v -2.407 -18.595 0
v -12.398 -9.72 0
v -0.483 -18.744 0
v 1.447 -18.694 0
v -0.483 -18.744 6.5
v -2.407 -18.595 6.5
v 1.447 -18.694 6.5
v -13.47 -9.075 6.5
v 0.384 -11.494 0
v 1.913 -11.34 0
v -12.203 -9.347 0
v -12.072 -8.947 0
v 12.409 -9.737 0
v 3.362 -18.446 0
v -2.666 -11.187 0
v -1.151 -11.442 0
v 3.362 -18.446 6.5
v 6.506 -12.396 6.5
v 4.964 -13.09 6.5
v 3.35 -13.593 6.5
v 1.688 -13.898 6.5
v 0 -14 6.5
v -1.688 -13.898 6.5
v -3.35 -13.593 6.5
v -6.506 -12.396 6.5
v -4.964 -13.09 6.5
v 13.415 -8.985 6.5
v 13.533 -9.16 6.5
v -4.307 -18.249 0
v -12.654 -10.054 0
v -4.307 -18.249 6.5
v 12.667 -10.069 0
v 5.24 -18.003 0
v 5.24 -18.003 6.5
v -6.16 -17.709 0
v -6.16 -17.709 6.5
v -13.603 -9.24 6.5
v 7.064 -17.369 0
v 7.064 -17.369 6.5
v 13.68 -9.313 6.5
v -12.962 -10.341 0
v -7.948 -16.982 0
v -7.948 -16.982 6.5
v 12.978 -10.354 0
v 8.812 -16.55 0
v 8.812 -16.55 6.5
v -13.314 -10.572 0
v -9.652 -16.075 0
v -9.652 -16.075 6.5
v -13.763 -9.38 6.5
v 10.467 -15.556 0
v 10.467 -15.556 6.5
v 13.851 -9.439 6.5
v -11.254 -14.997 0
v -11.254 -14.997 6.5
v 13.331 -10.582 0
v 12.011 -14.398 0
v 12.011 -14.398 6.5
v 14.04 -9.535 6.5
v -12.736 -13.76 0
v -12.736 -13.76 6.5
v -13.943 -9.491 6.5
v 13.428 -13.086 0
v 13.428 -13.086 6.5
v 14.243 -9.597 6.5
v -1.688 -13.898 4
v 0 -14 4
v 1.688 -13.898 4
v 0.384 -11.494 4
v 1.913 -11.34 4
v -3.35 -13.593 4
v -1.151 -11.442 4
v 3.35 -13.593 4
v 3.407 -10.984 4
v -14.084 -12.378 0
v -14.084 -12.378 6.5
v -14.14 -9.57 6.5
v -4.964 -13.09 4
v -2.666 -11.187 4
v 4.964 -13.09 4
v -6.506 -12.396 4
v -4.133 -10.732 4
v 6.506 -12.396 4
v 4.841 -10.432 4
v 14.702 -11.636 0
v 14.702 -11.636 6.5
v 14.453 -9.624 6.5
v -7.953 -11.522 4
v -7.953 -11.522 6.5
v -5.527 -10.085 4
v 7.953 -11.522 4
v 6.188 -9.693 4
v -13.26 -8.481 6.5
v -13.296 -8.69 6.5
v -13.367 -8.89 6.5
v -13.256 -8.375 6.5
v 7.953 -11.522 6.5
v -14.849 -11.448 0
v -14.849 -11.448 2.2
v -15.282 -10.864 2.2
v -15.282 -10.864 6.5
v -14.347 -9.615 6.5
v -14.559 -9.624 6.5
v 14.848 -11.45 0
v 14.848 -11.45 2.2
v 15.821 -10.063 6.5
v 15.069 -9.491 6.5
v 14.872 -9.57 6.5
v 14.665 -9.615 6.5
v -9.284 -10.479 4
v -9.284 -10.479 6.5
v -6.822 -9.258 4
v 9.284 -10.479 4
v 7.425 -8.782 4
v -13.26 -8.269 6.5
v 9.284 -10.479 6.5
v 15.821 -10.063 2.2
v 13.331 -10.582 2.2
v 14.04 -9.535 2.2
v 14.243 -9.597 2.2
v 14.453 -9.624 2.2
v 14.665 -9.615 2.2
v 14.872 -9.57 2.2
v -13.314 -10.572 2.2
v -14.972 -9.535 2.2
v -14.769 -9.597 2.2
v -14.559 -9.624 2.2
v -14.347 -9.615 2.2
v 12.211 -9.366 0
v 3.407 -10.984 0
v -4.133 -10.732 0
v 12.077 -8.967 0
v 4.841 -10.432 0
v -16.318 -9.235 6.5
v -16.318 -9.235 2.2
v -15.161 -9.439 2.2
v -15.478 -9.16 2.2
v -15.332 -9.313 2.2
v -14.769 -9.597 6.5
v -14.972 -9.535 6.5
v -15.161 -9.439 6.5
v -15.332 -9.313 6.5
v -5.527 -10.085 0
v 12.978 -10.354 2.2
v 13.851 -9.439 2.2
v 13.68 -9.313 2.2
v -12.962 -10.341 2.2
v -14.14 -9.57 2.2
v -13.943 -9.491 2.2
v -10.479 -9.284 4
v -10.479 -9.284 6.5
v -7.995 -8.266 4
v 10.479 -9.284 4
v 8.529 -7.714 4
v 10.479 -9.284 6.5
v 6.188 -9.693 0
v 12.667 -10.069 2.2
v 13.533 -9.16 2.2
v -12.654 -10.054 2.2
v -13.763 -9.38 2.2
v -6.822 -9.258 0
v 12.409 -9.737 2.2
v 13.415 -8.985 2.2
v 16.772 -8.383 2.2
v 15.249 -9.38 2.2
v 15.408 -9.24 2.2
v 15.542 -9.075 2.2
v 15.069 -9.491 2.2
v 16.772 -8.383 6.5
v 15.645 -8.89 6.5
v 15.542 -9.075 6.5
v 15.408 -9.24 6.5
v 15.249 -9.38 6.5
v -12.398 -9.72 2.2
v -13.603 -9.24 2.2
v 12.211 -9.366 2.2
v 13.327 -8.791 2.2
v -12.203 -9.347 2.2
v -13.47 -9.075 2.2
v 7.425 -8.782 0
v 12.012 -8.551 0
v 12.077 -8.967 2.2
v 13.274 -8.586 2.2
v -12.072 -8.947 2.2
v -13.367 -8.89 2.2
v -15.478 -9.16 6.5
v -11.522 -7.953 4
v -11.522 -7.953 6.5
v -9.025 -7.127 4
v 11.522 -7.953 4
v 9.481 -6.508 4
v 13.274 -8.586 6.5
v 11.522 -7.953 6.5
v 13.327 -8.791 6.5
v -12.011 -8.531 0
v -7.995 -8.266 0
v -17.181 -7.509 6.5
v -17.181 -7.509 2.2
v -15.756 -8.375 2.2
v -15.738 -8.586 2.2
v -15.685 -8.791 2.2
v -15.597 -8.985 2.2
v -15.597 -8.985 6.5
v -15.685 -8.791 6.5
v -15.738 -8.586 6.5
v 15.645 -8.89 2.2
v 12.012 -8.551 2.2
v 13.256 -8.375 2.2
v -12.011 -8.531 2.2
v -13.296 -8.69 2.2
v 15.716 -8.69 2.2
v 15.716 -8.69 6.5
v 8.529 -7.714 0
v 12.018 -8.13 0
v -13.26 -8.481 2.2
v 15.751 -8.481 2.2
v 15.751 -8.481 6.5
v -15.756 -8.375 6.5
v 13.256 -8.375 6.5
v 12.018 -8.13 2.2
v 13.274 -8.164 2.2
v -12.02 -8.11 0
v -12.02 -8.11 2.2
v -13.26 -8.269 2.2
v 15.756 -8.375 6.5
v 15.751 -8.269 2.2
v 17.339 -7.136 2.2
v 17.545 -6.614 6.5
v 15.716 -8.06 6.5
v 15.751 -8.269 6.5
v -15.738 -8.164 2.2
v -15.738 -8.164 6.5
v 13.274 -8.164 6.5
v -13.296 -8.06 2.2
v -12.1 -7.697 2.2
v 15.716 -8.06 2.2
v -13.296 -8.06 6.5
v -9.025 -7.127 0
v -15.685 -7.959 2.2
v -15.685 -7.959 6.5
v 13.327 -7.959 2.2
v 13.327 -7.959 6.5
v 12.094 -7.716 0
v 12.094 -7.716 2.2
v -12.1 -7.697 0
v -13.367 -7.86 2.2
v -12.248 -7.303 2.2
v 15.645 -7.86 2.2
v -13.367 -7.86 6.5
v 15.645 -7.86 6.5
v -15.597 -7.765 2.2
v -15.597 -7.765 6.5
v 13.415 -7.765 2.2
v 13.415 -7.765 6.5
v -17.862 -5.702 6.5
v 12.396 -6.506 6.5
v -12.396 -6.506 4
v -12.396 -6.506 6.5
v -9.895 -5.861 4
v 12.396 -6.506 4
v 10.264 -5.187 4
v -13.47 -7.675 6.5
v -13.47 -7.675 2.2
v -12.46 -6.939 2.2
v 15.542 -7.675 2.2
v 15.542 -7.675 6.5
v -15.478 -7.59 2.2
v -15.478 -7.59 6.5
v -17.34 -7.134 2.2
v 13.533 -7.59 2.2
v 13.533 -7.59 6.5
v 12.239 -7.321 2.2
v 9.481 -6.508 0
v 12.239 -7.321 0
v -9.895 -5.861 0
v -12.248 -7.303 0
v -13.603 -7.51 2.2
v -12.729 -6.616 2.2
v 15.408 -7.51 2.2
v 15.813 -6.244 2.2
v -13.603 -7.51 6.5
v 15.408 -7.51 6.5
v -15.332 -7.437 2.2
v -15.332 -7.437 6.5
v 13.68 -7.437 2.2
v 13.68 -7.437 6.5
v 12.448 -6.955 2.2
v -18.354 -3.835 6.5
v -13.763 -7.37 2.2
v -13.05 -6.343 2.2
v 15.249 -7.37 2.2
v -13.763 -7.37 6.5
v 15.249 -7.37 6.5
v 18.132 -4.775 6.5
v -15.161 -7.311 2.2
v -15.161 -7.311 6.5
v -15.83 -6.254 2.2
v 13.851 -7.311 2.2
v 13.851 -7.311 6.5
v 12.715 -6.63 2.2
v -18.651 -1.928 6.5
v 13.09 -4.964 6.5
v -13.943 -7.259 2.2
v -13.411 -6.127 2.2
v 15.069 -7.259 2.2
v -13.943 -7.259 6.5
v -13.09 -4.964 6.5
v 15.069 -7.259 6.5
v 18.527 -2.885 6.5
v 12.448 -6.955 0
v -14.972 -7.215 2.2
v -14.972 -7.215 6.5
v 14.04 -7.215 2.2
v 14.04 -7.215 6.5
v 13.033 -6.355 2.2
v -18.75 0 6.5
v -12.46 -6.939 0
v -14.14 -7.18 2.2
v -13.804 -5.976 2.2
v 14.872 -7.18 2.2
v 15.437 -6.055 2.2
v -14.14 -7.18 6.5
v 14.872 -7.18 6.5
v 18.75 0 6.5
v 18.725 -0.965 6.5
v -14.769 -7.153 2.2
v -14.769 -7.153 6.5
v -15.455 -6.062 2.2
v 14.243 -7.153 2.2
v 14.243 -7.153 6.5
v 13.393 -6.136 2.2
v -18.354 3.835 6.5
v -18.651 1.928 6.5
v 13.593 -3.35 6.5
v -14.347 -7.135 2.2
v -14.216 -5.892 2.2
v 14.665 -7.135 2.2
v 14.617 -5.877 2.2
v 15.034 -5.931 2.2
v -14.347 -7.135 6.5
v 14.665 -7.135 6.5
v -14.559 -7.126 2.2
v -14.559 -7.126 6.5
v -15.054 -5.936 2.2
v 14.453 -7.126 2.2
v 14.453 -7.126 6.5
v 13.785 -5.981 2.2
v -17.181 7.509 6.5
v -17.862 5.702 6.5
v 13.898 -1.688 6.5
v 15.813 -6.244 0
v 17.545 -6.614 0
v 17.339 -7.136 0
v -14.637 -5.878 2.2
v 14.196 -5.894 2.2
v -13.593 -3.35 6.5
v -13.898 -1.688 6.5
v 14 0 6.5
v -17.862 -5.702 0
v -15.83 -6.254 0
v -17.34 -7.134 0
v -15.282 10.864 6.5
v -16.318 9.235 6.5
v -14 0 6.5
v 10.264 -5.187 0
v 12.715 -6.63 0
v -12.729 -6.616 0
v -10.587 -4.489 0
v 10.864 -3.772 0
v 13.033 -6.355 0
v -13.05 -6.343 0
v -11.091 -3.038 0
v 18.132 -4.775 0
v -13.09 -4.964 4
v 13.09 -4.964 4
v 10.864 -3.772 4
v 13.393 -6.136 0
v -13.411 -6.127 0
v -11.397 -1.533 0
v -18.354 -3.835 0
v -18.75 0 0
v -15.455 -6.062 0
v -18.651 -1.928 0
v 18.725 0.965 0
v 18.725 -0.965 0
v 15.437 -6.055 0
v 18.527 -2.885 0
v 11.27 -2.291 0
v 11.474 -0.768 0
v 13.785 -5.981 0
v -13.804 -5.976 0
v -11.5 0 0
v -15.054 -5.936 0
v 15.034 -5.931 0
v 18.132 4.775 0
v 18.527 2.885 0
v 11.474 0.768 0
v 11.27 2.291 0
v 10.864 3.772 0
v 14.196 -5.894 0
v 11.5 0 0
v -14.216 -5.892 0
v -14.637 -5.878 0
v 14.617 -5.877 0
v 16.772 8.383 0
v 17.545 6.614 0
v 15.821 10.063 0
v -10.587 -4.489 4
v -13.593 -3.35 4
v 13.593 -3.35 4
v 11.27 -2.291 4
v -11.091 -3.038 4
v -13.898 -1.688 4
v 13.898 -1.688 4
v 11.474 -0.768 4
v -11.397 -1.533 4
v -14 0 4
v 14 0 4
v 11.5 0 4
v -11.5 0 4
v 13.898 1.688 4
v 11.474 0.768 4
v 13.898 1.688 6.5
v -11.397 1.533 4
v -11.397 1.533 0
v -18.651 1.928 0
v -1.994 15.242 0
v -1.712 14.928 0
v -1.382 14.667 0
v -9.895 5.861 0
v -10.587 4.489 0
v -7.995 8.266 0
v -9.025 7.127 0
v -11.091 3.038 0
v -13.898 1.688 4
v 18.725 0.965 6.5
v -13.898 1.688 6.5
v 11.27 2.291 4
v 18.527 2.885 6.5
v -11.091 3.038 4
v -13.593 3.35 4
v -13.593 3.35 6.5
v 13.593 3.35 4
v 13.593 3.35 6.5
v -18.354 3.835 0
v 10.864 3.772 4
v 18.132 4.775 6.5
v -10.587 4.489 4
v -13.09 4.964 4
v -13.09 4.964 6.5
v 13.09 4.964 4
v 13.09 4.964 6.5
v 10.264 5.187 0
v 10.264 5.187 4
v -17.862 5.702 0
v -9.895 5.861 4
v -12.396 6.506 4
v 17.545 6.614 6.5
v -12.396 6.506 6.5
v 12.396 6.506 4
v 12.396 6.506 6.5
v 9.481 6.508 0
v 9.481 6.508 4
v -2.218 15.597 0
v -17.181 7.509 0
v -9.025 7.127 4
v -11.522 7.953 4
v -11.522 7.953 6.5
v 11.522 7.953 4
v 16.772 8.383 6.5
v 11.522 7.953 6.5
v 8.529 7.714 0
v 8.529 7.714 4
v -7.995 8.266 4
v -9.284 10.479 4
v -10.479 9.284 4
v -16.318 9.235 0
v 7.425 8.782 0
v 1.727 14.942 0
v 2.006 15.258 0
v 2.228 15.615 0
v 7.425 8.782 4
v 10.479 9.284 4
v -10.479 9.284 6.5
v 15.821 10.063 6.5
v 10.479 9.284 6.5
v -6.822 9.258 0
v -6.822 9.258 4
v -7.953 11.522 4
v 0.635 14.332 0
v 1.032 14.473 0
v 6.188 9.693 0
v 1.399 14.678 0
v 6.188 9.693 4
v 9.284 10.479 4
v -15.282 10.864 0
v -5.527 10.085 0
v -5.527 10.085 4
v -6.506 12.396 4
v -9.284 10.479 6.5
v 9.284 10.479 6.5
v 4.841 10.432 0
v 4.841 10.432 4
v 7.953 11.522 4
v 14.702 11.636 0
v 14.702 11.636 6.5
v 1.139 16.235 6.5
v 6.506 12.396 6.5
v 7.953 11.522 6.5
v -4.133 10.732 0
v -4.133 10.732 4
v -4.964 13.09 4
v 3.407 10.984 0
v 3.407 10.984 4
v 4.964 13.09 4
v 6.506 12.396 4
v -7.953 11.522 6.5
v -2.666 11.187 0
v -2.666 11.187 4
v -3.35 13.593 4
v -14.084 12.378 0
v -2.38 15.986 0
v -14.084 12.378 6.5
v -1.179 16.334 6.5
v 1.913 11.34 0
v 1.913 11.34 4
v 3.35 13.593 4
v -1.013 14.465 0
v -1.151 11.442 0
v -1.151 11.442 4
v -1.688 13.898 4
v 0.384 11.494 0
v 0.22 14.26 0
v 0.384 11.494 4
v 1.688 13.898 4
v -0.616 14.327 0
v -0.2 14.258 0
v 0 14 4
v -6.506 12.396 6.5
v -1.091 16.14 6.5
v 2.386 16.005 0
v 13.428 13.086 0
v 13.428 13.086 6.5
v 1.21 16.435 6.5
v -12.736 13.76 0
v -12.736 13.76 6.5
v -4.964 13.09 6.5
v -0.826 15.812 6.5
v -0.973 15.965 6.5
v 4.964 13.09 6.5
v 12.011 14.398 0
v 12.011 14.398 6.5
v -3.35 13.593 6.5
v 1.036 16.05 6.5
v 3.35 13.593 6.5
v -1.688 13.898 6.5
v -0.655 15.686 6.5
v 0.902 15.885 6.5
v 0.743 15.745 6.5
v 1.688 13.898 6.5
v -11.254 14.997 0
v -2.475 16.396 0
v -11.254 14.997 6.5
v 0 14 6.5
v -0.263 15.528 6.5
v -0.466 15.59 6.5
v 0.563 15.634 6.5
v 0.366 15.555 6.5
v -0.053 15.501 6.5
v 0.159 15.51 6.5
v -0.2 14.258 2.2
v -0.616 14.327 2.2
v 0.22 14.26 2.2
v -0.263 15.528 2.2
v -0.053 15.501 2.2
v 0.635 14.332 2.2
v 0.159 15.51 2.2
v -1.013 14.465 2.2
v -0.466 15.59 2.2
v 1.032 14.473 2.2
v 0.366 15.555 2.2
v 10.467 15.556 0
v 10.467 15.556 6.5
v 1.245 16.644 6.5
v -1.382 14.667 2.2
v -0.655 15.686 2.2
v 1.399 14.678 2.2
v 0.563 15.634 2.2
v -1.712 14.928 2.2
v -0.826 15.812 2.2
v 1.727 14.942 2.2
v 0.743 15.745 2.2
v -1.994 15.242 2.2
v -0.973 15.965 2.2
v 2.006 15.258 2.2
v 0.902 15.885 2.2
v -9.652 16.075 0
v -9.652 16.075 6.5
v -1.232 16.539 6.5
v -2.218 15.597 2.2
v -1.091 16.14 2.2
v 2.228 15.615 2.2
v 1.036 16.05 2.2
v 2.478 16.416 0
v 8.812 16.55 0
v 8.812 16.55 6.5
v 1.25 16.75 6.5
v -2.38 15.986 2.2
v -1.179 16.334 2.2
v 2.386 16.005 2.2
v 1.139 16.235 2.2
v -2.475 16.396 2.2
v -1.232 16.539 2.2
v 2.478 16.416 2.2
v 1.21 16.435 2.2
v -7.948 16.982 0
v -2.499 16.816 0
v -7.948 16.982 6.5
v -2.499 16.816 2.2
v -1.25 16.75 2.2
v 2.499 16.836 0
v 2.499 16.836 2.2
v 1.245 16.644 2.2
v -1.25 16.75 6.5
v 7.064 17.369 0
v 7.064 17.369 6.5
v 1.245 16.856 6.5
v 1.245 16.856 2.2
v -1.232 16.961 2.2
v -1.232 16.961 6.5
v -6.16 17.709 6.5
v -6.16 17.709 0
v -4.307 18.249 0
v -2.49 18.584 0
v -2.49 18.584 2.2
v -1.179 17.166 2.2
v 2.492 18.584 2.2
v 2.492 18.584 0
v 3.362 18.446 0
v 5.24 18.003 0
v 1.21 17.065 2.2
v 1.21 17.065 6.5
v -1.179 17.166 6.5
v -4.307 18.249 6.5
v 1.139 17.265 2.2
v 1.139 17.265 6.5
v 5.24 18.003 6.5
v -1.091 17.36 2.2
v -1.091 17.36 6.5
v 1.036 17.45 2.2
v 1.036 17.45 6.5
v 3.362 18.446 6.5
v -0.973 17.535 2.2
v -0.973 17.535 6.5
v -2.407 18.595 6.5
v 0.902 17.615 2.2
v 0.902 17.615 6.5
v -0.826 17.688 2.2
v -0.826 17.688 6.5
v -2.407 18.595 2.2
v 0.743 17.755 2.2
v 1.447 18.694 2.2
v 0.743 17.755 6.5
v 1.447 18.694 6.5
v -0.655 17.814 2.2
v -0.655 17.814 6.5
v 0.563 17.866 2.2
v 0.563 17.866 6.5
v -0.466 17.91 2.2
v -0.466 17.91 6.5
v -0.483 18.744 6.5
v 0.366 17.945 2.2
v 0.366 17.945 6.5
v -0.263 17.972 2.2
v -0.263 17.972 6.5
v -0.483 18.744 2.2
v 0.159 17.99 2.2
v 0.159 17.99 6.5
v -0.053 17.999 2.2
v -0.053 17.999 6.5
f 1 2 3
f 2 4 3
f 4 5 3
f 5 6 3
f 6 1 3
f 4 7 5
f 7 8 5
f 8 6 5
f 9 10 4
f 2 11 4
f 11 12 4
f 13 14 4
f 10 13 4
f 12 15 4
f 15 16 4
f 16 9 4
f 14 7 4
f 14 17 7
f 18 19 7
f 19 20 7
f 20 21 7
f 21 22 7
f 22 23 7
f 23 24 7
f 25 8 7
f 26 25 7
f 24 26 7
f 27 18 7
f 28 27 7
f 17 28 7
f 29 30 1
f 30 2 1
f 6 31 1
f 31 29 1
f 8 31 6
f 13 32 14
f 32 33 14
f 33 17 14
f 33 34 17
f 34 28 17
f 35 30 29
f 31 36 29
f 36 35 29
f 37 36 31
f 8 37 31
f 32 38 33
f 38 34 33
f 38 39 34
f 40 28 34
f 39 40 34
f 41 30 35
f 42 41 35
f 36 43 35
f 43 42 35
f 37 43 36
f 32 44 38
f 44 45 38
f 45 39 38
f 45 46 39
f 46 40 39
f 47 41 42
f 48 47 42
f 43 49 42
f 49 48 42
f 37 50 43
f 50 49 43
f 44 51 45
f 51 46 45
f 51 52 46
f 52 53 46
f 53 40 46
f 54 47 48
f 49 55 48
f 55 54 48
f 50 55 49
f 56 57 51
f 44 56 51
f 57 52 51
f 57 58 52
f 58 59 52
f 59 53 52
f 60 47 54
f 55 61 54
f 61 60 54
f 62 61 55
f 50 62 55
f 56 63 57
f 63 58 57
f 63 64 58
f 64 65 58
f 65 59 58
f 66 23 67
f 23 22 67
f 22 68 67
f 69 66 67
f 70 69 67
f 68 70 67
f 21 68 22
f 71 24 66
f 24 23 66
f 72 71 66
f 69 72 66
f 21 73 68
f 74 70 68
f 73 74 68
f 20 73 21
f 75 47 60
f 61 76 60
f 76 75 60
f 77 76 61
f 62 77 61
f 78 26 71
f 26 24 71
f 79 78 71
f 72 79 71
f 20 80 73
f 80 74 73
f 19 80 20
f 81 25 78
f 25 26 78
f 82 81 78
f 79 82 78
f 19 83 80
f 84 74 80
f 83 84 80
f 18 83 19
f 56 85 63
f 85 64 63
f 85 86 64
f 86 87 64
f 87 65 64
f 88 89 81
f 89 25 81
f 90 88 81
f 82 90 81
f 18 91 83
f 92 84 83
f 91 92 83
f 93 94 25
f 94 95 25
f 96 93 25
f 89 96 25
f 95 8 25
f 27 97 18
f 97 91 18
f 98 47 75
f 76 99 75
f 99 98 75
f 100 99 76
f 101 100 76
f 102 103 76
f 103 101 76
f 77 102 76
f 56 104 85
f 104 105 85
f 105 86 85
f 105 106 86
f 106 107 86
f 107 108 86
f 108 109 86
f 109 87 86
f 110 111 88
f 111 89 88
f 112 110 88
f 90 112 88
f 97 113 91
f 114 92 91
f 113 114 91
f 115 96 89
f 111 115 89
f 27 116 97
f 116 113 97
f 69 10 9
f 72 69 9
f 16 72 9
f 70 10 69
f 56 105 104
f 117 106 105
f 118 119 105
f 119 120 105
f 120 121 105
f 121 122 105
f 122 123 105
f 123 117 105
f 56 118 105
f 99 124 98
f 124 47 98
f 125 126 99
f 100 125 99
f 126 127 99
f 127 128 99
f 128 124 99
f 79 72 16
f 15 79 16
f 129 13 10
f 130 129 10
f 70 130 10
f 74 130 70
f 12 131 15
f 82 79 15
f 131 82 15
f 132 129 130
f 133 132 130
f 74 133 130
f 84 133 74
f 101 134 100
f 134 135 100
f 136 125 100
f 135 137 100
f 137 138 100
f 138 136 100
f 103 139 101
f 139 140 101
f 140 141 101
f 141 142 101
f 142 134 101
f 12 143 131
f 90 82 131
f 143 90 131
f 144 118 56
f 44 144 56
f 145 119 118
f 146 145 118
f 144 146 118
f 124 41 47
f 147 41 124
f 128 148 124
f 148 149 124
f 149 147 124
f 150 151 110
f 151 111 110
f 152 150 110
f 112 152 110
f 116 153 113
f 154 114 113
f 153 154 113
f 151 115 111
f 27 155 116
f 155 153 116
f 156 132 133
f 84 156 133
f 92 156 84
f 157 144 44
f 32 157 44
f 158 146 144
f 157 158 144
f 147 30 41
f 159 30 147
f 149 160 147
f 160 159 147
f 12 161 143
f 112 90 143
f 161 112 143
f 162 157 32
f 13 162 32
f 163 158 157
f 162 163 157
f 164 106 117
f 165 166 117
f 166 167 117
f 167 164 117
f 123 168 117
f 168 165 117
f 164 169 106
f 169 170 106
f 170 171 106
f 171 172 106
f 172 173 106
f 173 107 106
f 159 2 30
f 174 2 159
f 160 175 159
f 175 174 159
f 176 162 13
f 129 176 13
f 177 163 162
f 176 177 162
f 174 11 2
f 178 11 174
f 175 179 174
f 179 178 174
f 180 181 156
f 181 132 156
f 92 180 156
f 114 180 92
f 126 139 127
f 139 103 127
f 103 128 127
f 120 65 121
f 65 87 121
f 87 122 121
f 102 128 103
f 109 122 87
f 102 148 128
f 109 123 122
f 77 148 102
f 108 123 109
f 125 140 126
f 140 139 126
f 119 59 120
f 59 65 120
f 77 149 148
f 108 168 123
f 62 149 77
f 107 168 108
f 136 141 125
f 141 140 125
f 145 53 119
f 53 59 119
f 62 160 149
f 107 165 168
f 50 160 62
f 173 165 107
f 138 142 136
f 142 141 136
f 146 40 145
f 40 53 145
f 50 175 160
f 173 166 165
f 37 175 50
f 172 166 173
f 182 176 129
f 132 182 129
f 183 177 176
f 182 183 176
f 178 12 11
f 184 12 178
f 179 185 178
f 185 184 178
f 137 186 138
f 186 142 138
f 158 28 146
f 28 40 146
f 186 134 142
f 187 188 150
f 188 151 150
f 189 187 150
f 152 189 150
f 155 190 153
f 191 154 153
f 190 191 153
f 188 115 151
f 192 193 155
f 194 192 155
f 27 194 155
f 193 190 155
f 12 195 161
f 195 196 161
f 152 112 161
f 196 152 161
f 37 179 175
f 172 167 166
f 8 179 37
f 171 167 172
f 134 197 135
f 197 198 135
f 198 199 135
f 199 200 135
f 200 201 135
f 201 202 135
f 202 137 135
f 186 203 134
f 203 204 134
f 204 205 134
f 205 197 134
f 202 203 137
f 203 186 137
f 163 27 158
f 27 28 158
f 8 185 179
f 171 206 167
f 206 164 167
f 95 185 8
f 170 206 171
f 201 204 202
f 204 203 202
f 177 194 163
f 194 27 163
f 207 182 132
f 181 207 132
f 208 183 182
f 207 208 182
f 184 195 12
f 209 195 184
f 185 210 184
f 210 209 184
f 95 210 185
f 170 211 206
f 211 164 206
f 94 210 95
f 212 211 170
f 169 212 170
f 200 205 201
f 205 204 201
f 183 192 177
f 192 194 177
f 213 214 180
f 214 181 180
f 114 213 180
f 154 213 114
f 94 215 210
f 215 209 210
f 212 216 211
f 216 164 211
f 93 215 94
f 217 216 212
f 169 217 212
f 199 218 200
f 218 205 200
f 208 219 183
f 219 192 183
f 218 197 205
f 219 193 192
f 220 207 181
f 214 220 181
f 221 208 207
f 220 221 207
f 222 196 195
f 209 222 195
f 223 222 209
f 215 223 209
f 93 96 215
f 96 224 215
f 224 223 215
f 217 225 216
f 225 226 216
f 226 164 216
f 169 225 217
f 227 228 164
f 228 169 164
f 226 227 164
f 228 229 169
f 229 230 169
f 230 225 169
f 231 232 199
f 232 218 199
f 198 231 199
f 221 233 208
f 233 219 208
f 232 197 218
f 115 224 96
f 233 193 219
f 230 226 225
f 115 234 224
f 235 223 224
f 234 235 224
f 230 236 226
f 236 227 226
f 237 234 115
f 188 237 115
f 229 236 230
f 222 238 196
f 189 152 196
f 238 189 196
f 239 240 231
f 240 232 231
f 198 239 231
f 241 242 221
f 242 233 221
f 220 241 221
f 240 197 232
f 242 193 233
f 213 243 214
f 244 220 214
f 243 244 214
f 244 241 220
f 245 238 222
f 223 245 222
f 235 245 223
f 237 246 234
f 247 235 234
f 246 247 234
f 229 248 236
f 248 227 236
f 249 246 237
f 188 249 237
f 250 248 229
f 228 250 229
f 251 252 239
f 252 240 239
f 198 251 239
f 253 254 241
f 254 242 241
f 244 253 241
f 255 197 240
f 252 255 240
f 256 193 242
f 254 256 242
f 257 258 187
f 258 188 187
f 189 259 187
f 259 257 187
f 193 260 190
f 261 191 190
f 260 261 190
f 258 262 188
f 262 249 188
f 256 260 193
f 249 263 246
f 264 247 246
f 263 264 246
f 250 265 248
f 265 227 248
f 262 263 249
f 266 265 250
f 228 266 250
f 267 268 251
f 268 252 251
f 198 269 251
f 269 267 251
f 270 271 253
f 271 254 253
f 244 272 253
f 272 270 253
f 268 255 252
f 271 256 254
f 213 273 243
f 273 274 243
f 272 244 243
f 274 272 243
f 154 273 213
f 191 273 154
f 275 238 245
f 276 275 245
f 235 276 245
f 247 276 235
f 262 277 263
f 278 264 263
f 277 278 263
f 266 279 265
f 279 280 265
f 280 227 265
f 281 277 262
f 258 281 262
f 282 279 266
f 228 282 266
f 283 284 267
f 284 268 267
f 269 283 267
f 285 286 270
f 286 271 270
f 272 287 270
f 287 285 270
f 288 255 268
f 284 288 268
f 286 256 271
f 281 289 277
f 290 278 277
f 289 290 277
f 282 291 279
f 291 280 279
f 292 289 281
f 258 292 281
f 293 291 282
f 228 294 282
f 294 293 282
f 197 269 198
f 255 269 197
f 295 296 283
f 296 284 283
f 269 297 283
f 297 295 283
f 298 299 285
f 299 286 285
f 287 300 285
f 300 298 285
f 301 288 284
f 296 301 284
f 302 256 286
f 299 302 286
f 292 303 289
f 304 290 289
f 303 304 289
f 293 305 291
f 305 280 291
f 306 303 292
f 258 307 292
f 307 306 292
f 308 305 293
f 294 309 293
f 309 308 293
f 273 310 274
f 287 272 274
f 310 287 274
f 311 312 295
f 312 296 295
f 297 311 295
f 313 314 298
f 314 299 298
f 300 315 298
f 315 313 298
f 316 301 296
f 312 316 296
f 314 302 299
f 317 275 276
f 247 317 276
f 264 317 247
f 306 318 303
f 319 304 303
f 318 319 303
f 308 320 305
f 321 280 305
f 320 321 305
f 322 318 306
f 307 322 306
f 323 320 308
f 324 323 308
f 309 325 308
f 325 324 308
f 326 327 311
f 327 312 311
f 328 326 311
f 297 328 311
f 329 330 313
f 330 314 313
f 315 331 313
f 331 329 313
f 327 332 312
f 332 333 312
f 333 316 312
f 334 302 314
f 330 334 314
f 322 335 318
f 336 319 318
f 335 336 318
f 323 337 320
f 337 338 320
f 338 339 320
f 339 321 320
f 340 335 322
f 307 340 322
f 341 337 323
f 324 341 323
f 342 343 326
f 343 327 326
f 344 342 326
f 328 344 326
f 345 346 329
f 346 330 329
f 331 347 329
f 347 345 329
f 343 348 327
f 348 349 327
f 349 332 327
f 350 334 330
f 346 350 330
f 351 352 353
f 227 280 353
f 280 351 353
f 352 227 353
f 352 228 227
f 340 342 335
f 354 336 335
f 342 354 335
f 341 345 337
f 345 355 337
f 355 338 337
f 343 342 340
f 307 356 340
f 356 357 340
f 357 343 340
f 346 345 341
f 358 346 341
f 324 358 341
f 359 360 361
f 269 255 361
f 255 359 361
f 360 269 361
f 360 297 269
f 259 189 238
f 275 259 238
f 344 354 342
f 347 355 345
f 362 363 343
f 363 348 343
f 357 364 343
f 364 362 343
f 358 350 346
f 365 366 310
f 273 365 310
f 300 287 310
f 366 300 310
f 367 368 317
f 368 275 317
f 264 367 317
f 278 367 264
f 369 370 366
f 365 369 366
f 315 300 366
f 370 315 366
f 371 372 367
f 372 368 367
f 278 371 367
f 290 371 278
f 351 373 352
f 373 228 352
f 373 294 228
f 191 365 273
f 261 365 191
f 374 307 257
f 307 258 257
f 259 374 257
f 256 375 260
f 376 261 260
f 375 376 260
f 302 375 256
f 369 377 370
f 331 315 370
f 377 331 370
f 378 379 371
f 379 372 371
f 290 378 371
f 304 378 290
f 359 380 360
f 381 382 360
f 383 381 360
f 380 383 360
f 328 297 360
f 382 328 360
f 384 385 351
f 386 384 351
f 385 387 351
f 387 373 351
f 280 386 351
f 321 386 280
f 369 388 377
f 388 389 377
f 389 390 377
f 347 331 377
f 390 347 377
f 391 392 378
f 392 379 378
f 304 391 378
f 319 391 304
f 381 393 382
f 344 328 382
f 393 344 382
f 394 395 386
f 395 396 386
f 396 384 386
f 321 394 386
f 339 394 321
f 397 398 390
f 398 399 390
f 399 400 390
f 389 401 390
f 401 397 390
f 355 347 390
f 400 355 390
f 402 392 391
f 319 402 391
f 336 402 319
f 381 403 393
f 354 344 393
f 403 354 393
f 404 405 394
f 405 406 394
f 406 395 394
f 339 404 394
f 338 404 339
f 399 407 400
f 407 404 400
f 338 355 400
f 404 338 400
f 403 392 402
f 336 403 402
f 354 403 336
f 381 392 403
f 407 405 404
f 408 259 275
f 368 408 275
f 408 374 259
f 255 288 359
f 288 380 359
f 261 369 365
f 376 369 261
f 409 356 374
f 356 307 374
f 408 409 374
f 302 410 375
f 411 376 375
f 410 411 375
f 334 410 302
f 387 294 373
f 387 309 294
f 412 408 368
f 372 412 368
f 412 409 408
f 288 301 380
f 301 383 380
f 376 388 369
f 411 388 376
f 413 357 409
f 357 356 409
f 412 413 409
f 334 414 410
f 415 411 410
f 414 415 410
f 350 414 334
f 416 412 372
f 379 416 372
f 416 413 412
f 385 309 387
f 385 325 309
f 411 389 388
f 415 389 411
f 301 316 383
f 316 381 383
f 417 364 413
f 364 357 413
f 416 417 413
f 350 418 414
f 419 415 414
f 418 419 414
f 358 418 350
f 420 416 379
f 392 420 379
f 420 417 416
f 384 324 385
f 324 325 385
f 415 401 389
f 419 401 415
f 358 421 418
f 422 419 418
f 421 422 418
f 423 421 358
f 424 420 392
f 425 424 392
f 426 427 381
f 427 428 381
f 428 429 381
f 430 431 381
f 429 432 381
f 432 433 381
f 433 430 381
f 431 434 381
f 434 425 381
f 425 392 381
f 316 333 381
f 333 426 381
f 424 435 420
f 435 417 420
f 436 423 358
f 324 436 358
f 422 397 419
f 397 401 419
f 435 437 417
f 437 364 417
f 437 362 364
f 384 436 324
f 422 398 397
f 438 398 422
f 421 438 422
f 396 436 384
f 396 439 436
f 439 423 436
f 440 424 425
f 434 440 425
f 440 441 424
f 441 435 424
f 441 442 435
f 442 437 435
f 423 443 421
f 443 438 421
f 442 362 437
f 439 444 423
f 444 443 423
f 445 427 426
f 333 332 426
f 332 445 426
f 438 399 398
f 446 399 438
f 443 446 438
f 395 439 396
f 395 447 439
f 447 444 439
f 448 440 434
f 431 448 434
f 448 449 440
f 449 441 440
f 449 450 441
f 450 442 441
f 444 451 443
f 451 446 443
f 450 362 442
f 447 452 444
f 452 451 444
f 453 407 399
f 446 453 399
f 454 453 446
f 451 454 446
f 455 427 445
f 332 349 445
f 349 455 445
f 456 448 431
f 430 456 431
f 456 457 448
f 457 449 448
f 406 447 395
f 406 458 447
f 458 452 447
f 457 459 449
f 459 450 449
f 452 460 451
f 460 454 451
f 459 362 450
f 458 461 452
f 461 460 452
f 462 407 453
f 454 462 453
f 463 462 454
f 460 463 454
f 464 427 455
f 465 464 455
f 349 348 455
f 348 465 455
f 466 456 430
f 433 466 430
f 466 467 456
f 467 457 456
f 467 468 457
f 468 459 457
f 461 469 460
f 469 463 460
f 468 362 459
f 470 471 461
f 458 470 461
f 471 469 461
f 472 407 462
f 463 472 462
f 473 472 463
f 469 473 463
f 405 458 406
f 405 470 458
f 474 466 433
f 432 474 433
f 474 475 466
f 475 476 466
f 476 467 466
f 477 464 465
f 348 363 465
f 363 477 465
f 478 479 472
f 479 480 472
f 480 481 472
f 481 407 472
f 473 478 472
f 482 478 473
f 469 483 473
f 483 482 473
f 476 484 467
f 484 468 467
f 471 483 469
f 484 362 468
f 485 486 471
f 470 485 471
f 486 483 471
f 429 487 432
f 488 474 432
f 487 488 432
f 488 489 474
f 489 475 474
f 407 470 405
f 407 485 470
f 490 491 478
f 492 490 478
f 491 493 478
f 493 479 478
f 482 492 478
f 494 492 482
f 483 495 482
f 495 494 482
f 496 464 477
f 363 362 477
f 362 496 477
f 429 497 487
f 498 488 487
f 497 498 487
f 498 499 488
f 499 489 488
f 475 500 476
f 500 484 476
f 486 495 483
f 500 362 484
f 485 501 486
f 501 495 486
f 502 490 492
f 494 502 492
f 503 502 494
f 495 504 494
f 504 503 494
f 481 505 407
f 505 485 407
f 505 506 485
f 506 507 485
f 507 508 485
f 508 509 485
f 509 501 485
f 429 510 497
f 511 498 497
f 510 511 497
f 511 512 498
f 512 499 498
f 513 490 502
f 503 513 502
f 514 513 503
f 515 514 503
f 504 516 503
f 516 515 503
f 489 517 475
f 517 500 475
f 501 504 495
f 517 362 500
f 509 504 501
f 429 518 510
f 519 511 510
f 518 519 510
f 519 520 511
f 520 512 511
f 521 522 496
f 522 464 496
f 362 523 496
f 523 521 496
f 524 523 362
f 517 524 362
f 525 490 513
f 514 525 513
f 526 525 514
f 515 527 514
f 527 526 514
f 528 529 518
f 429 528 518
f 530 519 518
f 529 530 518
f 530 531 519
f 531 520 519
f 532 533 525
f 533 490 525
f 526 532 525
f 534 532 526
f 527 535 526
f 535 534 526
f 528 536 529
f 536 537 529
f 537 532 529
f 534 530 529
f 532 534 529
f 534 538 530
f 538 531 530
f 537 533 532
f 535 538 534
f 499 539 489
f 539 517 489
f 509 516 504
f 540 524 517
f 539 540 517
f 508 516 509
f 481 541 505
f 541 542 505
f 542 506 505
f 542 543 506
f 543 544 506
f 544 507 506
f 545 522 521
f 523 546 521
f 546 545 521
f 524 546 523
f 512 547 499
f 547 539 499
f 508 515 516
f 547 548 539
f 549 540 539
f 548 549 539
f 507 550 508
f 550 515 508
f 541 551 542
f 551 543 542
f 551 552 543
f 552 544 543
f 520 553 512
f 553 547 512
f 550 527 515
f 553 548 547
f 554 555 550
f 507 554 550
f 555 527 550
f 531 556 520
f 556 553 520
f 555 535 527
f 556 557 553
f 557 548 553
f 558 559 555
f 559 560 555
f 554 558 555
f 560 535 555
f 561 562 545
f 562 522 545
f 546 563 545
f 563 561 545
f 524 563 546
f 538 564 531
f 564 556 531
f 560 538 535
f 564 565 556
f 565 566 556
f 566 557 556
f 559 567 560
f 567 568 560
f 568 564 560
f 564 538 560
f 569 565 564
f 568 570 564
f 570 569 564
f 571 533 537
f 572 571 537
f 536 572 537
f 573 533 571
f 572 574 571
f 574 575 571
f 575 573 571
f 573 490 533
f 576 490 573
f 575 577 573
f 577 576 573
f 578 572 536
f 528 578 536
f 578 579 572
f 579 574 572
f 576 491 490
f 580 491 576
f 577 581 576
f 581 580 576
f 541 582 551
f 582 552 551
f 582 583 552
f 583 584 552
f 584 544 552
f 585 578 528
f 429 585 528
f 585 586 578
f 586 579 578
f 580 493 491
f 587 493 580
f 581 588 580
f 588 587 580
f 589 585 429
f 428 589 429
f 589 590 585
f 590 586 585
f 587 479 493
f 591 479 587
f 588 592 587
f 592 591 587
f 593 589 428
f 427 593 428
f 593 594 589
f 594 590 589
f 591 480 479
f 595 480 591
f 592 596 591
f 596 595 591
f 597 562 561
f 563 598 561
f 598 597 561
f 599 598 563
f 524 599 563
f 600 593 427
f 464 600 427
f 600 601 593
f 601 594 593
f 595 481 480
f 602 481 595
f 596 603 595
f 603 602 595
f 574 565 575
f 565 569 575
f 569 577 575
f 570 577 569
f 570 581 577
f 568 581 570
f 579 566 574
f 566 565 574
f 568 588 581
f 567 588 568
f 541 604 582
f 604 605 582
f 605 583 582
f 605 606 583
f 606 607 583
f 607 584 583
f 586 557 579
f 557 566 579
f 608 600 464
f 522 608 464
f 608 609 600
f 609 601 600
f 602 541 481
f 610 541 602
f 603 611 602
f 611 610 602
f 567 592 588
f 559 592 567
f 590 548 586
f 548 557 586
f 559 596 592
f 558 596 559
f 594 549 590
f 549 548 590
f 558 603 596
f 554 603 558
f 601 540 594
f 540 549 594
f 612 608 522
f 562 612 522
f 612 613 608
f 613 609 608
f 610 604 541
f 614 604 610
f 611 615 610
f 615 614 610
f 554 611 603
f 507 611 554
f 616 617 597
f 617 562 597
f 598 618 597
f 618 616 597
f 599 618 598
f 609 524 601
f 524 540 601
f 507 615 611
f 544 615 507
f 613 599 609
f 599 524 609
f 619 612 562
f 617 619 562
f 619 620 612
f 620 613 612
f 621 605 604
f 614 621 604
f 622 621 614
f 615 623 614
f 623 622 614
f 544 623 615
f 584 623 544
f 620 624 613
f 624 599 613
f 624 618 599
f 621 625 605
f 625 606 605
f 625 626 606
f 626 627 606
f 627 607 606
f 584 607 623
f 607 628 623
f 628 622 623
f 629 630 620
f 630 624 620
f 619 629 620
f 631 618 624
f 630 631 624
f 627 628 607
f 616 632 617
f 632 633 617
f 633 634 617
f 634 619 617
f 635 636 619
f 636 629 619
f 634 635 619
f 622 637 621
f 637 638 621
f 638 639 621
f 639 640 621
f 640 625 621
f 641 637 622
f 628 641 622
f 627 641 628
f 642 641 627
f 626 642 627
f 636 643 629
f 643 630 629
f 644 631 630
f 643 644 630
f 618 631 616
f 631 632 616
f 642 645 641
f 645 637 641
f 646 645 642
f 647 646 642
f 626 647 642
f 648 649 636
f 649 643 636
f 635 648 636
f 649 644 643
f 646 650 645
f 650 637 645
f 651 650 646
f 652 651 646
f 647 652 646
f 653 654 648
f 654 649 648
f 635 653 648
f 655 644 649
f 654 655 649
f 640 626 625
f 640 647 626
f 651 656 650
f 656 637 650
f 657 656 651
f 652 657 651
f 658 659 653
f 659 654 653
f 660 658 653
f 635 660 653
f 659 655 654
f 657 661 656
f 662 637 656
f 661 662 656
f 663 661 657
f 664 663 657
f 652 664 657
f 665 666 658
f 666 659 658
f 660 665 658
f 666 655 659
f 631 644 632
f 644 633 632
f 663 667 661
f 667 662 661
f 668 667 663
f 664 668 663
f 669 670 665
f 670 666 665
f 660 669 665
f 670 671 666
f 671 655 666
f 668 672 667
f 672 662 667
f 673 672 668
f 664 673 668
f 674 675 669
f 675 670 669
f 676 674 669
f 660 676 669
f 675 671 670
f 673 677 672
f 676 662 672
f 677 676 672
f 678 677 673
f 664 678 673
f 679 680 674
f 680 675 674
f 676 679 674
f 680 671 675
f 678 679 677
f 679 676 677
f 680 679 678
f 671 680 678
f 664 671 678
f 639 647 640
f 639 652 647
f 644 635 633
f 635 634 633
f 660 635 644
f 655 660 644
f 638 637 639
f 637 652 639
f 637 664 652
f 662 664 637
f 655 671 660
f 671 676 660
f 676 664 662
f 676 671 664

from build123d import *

# Parameters (mm, degrees)
SKETCH_1_R          = 18.75
SKETCH_1_R_2        = 11.5
SKETCH_1_R_3        = 1.25
EXTRUDE_1_DEPTH     = 6.5
SKETCH_2_R          = 14
CUT_EXTRUDE_1_DEPTH = 2.5
CUT_EXTRUDE_2_DEPTH = 2.2
CUT_EXTRUDE_3_DEPTH = 2.2


with BuildPart() as part:
    # 草图1 → 凸台-拉伸1 (new body)
    with BuildSketch(Plane.XY):
        Circle(SKETCH_1_R)
        Circle(SKETCH_1_R_2, mode=Mode.SUBTRACT)
        with Locations((0, 16.75)):
            Circle(SKETCH_1_R_3, mode=Mode.SUBTRACT)
        with Locations((-14.505925513, -8.375)):
            Circle(SKETCH_1_R_3, mode=Mode.SUBTRACT)
        with Locations((14.505925513, -8.375)):
            Circle(SKETCH_1_R_3, mode=Mode.SUBTRACT)
    extrude(amount=EXTRUDE_1_DEPTH)

    # 草图2 → 切除-拉伸1 (cut)
    with BuildSketch(Plane.XY.offset(6.5)):
        Circle(SKETCH_2_R)
    extrude(amount=-CUT_EXTRUDE_1_DEPTH, mode=Mode.SUBTRACT)

    # 草图3 → 切除-拉伸2 (cut)
    with BuildSketch(Plane(origin=(0, 0, 0), x_dir=(-1, 0, 0), z_dir=(0, 0, -1))):
        with BuildLine():
            ThreePointArc((16.972613326, -7.968243025), (12.340862004, -7.125), (15.387007546, -10.714592796))
            ThreePointArc((15.387007546, -10.714592796), (16.237976321, -9.375), (16.972613326, -7.968243025))
        make_face()
        with BuildLine():
            ThreePointArc((-15.387007546, -10.714592796), (-12.340862004, -7.125), (-16.972613326, -7.968243025))
            ThreePointArc((-16.972613326, -7.968243025), (-16.237976321, -9.375), (-15.387007546, -10.714592796))
        make_face()
        with BuildLine():
            ThreePointArc((-1.58560578, 18.682835821), (0, 14.25), (1.58560578, 18.682835821))
            ThreePointArc((1.58560578, 18.682835821), (0, 18.75), (-1.58560578, 18.682835821))
        make_face()
    extrude(amount=-CUT_EXTRUDE_2_DEPTH, mode=Mode.SUBTRACT)

    # 草图4 → 切除-拉伸3 (cut)
    with BuildSketch(Plane(origin=(0, 0, 0), x_dir=(-1, 0, 0), z_dir=(0, 0, -1))):
        with BuildLine():
            Line((-14.815508707, -11.430866213), (-13.331315009, -10.581873391))
            ThreePointArc((-13.331315009, -10.581873391), (-14.344856115, -10.869805934), (-15.387007546, -10.714592796))
            ThreePointArc((-15.387007546, -10.714592796), (-15.122080143, -11.08535936), (-14.848220713, -11.449578231))
            Line((-14.848220713, -11.449578231), (-14.815508707, -11.430866213))
        make_face()
        with BuildLine():
            Line((-15.812800928, -6.24378517), (-17.28904082, -7.10668269))
            Line((-17.28904082, -7.10668269), (-17.339016827, -7.135894861))
            ThreePointArc((-17.339016827, -7.135894861), (-17.16086221, -7.554290715), (-16.972613326, -7.968243025))
            ThreePointArc((-16.972613326, -7.968243025), (-16.580385342, -6.979788038), (-15.812800928, -6.24378517))
        make_face()
        with BuildLine():
            Line((13.313677037, -10.572394724), (14.799088157, -11.419407212))
            Line((14.799088157, -11.419407212), (14.849374642, -11.448081618))
            ThreePointArc((14.849374642, -11.448081618), (15.122638772, -11.084597268), (15.387007546, -10.714592796))
            ThreePointArc((15.387007546, -10.714592796), (14.334866424, -10.869140892), (13.313677037, -10.572394724))
        make_face()
        with BuildLine():
            Line((17.339735967, -7.134147223), (17.307174882, -7.115173804))
            Line((17.307174882, -7.115173804), (15.829828681, -6.254320768))
            ThreePointArc((15.829828681, -6.254320768), (16.585956131, -6.988106842), (16.972613326, -7.968243025))
            ThreePointArc((16.972613326, -7.968243025), (17.161242887, -7.553425882), (17.339735967, -7.134147223))
        make_face()
        with BuildLine():
            Line((-2.491515254, 18.583725454), (-2.491666175, 18.546040017))
            Line((-2.491666175, 18.546040017), (-2.498513672, 16.836194159))
            ThreePointArc((-2.498513672, 16.836194159), (-2.241100016, 17.857912776), (-1.58560578, 18.682835821))
            ThreePointArc((-1.58560578, 18.682835821), (-2.039162744, 18.638785242), (-2.491515254, 18.583725454))
        make_face()
        with BuildLine():
            ThreePointArc((1.58560578, 18.682835821), (2.245518917, 17.848928929), (2.499123891, 16.816179894))
            Line((2.499123891, 16.816179894), (2.489952664, 18.526089903))
            Line((2.489952664, 18.526089903), (2.489642185, 18.58397648))
            ThreePointArc((2.489642185, 18.58397648), (2.038223439, 18.638887982), (1.58560578, 18.682835821))
        make_face()
    extrude(amount=-CUT_EXTRUDE_3_DEPTH, mode=Mode.SUBTRACT)


solid = part.part
